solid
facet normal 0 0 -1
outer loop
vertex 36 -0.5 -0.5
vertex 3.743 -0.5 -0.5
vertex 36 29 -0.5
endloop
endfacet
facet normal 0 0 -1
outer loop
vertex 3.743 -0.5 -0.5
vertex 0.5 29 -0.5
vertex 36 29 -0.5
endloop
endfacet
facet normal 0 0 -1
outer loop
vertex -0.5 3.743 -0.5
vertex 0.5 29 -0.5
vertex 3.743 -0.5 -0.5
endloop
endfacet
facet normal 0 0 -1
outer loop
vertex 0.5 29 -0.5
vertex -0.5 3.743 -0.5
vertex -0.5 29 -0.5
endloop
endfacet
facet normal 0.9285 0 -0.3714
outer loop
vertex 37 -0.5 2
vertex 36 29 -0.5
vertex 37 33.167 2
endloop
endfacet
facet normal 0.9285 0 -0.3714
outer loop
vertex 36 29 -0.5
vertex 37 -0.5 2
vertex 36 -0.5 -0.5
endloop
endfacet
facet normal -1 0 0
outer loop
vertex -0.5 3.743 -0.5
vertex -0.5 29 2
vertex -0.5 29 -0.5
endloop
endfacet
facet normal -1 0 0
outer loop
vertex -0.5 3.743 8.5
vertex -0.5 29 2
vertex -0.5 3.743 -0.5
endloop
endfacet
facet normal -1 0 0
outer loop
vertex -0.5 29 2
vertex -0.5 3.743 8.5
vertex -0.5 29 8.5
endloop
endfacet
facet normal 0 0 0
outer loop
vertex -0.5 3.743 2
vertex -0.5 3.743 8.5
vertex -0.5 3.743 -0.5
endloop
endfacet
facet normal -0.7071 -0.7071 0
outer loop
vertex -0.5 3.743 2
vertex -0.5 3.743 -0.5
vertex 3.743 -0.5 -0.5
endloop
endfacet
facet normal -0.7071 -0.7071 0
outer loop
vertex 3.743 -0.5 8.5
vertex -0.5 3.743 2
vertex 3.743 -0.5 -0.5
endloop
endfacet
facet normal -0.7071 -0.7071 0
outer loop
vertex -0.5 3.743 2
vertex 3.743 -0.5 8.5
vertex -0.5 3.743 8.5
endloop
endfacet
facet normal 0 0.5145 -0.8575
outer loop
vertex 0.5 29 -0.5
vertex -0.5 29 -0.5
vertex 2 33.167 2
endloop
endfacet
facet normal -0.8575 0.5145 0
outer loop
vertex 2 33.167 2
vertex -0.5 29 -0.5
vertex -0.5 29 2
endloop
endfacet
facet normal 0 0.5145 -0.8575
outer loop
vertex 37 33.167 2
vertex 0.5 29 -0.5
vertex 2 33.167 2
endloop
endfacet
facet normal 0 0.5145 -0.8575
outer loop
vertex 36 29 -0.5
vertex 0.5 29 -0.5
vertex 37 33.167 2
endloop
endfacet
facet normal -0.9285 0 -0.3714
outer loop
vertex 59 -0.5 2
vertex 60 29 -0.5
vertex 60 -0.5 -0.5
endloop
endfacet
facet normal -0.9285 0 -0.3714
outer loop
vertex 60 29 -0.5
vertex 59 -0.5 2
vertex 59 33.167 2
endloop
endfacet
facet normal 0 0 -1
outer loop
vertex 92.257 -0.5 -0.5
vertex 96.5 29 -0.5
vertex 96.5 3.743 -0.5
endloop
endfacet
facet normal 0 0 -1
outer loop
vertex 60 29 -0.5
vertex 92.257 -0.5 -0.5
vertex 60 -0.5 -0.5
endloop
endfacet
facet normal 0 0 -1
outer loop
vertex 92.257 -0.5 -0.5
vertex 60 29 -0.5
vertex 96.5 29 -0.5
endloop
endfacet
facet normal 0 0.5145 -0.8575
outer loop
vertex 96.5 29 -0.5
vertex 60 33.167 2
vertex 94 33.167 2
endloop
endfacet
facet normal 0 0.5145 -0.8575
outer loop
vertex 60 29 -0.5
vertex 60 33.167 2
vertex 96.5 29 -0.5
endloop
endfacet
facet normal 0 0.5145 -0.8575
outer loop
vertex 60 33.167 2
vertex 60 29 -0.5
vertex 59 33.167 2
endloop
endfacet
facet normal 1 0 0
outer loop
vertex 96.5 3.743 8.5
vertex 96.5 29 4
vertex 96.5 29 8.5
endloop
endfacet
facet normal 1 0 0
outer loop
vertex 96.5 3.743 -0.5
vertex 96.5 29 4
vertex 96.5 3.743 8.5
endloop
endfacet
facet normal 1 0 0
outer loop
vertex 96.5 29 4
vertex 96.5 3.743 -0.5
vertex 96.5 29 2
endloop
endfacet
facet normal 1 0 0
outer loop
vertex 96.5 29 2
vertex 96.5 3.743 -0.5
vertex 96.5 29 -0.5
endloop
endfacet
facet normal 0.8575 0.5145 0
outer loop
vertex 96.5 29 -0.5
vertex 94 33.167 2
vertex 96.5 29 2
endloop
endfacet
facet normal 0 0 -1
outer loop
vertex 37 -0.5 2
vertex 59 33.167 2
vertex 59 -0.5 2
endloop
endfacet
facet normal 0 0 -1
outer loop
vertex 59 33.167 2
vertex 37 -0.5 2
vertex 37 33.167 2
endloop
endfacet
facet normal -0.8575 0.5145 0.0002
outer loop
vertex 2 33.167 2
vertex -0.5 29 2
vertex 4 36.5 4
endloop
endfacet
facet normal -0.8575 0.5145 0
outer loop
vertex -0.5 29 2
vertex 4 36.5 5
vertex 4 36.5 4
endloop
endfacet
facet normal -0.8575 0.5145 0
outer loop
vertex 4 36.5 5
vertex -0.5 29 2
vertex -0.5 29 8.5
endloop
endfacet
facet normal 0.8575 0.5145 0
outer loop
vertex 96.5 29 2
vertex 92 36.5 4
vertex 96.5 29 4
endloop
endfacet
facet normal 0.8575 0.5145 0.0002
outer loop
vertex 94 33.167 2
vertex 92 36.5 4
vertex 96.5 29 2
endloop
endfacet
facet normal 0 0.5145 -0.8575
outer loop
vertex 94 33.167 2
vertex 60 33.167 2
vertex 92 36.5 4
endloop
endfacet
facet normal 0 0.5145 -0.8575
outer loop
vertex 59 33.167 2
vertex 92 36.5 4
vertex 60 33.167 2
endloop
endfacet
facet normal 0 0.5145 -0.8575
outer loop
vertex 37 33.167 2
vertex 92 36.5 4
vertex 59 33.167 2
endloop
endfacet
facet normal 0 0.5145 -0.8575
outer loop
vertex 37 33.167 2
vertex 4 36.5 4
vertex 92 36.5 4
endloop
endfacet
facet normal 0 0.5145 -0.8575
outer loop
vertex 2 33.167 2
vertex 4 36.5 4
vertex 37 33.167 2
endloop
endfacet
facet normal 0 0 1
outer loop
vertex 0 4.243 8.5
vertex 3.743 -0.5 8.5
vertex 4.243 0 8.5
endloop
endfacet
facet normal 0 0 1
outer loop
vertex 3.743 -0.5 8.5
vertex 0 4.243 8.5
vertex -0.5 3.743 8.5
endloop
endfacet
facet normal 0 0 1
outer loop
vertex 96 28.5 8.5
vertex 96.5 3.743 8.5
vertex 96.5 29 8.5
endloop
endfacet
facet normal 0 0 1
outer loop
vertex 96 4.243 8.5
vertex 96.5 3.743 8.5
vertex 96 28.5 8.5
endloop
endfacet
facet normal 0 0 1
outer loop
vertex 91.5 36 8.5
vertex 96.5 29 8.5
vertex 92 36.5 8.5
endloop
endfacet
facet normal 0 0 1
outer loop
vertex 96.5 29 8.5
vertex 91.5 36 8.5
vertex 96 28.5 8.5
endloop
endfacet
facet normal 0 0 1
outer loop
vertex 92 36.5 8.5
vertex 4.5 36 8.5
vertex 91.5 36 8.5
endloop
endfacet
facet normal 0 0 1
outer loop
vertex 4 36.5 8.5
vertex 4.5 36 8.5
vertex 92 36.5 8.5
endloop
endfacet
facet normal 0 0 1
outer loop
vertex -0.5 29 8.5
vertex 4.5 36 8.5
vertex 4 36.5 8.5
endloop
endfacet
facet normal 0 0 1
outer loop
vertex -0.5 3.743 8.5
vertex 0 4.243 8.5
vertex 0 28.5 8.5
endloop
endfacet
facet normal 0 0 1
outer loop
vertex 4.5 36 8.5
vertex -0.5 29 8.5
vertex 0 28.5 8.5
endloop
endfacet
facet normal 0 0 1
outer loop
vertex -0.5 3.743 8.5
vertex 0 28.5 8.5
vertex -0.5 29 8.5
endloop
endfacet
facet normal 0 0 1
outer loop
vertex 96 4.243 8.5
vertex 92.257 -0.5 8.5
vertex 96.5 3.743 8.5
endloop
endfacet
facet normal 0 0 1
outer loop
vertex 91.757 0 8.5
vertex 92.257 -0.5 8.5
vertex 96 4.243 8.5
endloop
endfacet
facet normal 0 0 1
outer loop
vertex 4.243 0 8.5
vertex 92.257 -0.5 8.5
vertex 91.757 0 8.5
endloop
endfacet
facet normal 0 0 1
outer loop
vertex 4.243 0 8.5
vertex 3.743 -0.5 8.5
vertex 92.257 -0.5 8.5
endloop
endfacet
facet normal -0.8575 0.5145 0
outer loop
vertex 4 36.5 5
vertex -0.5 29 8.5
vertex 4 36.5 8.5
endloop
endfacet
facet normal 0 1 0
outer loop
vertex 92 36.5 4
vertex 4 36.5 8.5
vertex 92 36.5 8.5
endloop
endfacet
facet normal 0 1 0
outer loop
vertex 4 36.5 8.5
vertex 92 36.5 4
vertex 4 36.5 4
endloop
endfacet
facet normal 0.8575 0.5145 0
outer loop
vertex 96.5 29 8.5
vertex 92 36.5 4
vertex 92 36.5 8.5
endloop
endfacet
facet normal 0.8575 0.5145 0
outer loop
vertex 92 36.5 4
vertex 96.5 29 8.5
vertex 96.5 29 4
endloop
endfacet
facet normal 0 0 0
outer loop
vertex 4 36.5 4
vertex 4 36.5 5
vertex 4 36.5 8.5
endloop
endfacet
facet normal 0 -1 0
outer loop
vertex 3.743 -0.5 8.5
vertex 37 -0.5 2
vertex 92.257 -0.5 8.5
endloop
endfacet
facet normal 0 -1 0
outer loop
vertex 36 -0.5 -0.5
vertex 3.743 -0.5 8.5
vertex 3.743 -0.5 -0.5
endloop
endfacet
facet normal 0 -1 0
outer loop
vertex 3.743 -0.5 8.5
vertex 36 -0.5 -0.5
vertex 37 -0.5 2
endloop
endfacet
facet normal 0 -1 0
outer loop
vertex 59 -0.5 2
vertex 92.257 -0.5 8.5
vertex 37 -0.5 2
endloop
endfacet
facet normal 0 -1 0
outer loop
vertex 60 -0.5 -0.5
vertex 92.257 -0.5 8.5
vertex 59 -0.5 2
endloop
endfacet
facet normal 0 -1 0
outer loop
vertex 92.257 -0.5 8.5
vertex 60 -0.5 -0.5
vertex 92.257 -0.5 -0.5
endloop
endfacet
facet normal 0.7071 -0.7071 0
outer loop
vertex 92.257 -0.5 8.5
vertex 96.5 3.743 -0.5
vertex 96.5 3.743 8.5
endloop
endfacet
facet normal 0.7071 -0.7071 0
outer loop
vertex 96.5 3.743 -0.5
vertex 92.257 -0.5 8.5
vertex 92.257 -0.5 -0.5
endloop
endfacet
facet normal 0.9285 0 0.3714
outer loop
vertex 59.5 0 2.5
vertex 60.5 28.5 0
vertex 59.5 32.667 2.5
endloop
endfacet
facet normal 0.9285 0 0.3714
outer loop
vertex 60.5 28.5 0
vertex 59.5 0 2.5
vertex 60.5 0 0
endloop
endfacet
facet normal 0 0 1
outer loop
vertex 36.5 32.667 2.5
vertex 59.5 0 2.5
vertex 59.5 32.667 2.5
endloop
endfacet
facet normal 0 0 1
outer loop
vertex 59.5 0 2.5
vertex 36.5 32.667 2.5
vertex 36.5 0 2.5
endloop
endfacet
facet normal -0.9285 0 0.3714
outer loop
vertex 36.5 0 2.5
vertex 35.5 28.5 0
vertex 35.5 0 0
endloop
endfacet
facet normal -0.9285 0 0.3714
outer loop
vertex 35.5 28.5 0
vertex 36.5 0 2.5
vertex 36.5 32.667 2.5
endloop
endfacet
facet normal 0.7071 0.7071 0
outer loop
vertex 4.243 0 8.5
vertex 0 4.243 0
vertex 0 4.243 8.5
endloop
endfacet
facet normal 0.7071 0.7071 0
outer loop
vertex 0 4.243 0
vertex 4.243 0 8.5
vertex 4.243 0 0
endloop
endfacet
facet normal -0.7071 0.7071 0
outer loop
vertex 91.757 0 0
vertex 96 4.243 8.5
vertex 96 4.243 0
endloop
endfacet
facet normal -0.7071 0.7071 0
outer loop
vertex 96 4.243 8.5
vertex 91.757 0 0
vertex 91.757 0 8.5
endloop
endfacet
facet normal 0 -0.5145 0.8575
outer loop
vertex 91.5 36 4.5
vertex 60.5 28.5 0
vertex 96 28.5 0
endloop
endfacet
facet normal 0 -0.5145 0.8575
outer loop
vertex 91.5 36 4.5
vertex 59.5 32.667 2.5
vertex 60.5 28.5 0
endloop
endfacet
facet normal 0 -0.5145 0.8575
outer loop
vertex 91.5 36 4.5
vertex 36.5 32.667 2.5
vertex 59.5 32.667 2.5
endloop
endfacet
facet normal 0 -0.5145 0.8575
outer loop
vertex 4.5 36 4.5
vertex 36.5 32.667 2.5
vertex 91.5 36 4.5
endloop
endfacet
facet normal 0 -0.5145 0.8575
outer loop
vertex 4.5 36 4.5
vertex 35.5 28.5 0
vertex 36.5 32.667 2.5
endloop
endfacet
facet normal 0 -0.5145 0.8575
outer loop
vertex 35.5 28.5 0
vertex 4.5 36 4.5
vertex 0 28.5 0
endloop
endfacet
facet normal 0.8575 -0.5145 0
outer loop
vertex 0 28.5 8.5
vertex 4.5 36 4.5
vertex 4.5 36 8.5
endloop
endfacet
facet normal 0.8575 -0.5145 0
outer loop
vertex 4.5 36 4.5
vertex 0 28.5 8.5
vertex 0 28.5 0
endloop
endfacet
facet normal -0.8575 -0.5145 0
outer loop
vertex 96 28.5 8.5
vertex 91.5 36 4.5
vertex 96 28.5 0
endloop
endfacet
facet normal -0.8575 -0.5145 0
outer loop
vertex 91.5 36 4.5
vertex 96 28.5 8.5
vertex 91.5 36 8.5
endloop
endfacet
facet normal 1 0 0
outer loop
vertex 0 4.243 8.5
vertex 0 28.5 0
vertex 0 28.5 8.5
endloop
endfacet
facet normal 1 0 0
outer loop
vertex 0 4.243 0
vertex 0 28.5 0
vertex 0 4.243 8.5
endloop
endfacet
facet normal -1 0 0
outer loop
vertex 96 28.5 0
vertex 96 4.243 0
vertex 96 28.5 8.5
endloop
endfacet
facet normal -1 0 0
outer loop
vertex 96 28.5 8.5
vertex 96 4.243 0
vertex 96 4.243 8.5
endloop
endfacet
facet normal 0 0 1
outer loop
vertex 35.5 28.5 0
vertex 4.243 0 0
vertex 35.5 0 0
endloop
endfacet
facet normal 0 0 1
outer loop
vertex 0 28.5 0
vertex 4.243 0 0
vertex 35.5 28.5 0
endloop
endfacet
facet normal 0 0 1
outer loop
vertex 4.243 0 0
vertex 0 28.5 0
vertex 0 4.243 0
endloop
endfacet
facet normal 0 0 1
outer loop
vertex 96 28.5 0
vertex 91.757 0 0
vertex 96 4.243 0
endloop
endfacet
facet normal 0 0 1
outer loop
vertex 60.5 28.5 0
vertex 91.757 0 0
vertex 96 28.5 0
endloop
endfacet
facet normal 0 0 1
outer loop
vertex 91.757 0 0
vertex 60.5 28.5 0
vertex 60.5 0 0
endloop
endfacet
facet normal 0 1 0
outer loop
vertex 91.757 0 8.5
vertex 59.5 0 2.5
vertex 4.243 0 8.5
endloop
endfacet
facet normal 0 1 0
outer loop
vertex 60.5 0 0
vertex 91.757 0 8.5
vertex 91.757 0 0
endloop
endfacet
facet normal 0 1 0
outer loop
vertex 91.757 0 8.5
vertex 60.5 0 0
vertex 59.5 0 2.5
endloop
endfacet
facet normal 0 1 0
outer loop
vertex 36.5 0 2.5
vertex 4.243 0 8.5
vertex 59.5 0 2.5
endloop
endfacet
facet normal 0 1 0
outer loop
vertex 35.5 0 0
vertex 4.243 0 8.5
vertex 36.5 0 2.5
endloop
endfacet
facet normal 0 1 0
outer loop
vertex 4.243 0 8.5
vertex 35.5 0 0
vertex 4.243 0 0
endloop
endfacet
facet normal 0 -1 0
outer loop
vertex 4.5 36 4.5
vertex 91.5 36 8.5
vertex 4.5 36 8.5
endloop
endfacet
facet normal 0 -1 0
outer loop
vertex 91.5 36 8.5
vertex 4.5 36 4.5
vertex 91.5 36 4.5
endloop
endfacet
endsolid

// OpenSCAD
// e = epsilon fudge factor to add to cut-outs for smoother rendering
e = 0.1;
e2 = e * 2;

module charger_bottom(h_shell) {
  // Outer dimensions of charger shell (all dimensions in mm)
  w_shell = 96;
  d_shell = 36;

  // Bottom center dimple top/bottom width and cut-out height
  w_dimple_top = 23;
  w_dimple_bottom = 25;
  w_dimple_diff = (w_dimple_bottom - w_dimple_top) / 2;
  h_dimple = 2.5;

  // Front outer corner vertical bevels are 45° cut-outs with 6mm faces
  w_front_bevel = 6 / sqrt(2);

  // Rear bottom horizontal bevel extends 7.5mm deep, 4.5mm inwards
  rear_bevel_d = 7.5;
  rear_bevel_h = 4.5;
  rear_bevel_angle = atan(rear_bevel_h / rear_bevel_d);

  // Given angle theta, adjacent length, and height, render right triangle
  module right_triangle(theta, x, z) {
    y = tan(theta) * x;
    linear_extrude(height = z)
      polygon([[0, 0], [0, -e], [x + e, -e], [x + e, y], [x, y]]);
  }

  difference() {
    cube([w_shell, d_shell, h_shell]);
    union() {
      // Bottom center dimple
      translate([(w_shell - w_dimple_top) / 2, -e, h_dimple])
        rotate([270, 270, 0])
        linear_extrude(height = d_shell + e2)
        polygon([[0, 0], [0, w_dimple_top],
                 [-h_dimple, w_dimple_top + w_dimple_diff],
                 [-(h_dimple + e), w_dimple_top + w_dimple_diff],
                 [-(h_dimple + e), -w_dimple_diff],
                 [-h_dimple, -w_dimple_diff]]);

      // Front outer corner vertical bevels (from front: left, right)
      translate([0, w_front_bevel, -e])
        rotate([0, 0, 270])
        right_triangle(45, w_front_bevel, h_shell + e2);
      translate([w_shell - w_front_bevel, 0, -e])
        right_triangle(45, w_front_bevel, h_shell + e2);

      // Rear bottom horizontal bevel
      translate([-e, d_shell - (rear_bevel_d), 0])
        rotate([90, 0, 90])
        right_triangle(rear_bevel_angle, rear_bevel_d, w_shell + e2);

      // Rear outer corner vertical bevels (from front: left, right)
      translate([0, d_shell - rear_bevel_d, -e])
        mirror([1, 0, 0])
        rotate([0, 0, 90])
        right_triangle(rear_bevel_angle, rear_bevel_d, h_shell + e2);
      translate([w_shell, d_shell - rear_bevel_d, -e])
        rotate([0, 0, 90])
        right_triangle(rear_bevel_angle, rear_bevel_d, h_shell + e2);
    }
  }
}

mount_height = 8;
mount_thickness = 1;
mount_thickness2 = mount_thickness * 2;

difference() {
  translate([-mount_thickness / 2, -mount_thickness / 2, -mount_thickness / 2])
    minkowski() {
      charger_bottom(mount_height);
      cube(size = [mount_thickness, mount_thickness, mount_thickness]);
    }
  charger_bottom(mount_height + (mount_thickness / 2) + e);
}
